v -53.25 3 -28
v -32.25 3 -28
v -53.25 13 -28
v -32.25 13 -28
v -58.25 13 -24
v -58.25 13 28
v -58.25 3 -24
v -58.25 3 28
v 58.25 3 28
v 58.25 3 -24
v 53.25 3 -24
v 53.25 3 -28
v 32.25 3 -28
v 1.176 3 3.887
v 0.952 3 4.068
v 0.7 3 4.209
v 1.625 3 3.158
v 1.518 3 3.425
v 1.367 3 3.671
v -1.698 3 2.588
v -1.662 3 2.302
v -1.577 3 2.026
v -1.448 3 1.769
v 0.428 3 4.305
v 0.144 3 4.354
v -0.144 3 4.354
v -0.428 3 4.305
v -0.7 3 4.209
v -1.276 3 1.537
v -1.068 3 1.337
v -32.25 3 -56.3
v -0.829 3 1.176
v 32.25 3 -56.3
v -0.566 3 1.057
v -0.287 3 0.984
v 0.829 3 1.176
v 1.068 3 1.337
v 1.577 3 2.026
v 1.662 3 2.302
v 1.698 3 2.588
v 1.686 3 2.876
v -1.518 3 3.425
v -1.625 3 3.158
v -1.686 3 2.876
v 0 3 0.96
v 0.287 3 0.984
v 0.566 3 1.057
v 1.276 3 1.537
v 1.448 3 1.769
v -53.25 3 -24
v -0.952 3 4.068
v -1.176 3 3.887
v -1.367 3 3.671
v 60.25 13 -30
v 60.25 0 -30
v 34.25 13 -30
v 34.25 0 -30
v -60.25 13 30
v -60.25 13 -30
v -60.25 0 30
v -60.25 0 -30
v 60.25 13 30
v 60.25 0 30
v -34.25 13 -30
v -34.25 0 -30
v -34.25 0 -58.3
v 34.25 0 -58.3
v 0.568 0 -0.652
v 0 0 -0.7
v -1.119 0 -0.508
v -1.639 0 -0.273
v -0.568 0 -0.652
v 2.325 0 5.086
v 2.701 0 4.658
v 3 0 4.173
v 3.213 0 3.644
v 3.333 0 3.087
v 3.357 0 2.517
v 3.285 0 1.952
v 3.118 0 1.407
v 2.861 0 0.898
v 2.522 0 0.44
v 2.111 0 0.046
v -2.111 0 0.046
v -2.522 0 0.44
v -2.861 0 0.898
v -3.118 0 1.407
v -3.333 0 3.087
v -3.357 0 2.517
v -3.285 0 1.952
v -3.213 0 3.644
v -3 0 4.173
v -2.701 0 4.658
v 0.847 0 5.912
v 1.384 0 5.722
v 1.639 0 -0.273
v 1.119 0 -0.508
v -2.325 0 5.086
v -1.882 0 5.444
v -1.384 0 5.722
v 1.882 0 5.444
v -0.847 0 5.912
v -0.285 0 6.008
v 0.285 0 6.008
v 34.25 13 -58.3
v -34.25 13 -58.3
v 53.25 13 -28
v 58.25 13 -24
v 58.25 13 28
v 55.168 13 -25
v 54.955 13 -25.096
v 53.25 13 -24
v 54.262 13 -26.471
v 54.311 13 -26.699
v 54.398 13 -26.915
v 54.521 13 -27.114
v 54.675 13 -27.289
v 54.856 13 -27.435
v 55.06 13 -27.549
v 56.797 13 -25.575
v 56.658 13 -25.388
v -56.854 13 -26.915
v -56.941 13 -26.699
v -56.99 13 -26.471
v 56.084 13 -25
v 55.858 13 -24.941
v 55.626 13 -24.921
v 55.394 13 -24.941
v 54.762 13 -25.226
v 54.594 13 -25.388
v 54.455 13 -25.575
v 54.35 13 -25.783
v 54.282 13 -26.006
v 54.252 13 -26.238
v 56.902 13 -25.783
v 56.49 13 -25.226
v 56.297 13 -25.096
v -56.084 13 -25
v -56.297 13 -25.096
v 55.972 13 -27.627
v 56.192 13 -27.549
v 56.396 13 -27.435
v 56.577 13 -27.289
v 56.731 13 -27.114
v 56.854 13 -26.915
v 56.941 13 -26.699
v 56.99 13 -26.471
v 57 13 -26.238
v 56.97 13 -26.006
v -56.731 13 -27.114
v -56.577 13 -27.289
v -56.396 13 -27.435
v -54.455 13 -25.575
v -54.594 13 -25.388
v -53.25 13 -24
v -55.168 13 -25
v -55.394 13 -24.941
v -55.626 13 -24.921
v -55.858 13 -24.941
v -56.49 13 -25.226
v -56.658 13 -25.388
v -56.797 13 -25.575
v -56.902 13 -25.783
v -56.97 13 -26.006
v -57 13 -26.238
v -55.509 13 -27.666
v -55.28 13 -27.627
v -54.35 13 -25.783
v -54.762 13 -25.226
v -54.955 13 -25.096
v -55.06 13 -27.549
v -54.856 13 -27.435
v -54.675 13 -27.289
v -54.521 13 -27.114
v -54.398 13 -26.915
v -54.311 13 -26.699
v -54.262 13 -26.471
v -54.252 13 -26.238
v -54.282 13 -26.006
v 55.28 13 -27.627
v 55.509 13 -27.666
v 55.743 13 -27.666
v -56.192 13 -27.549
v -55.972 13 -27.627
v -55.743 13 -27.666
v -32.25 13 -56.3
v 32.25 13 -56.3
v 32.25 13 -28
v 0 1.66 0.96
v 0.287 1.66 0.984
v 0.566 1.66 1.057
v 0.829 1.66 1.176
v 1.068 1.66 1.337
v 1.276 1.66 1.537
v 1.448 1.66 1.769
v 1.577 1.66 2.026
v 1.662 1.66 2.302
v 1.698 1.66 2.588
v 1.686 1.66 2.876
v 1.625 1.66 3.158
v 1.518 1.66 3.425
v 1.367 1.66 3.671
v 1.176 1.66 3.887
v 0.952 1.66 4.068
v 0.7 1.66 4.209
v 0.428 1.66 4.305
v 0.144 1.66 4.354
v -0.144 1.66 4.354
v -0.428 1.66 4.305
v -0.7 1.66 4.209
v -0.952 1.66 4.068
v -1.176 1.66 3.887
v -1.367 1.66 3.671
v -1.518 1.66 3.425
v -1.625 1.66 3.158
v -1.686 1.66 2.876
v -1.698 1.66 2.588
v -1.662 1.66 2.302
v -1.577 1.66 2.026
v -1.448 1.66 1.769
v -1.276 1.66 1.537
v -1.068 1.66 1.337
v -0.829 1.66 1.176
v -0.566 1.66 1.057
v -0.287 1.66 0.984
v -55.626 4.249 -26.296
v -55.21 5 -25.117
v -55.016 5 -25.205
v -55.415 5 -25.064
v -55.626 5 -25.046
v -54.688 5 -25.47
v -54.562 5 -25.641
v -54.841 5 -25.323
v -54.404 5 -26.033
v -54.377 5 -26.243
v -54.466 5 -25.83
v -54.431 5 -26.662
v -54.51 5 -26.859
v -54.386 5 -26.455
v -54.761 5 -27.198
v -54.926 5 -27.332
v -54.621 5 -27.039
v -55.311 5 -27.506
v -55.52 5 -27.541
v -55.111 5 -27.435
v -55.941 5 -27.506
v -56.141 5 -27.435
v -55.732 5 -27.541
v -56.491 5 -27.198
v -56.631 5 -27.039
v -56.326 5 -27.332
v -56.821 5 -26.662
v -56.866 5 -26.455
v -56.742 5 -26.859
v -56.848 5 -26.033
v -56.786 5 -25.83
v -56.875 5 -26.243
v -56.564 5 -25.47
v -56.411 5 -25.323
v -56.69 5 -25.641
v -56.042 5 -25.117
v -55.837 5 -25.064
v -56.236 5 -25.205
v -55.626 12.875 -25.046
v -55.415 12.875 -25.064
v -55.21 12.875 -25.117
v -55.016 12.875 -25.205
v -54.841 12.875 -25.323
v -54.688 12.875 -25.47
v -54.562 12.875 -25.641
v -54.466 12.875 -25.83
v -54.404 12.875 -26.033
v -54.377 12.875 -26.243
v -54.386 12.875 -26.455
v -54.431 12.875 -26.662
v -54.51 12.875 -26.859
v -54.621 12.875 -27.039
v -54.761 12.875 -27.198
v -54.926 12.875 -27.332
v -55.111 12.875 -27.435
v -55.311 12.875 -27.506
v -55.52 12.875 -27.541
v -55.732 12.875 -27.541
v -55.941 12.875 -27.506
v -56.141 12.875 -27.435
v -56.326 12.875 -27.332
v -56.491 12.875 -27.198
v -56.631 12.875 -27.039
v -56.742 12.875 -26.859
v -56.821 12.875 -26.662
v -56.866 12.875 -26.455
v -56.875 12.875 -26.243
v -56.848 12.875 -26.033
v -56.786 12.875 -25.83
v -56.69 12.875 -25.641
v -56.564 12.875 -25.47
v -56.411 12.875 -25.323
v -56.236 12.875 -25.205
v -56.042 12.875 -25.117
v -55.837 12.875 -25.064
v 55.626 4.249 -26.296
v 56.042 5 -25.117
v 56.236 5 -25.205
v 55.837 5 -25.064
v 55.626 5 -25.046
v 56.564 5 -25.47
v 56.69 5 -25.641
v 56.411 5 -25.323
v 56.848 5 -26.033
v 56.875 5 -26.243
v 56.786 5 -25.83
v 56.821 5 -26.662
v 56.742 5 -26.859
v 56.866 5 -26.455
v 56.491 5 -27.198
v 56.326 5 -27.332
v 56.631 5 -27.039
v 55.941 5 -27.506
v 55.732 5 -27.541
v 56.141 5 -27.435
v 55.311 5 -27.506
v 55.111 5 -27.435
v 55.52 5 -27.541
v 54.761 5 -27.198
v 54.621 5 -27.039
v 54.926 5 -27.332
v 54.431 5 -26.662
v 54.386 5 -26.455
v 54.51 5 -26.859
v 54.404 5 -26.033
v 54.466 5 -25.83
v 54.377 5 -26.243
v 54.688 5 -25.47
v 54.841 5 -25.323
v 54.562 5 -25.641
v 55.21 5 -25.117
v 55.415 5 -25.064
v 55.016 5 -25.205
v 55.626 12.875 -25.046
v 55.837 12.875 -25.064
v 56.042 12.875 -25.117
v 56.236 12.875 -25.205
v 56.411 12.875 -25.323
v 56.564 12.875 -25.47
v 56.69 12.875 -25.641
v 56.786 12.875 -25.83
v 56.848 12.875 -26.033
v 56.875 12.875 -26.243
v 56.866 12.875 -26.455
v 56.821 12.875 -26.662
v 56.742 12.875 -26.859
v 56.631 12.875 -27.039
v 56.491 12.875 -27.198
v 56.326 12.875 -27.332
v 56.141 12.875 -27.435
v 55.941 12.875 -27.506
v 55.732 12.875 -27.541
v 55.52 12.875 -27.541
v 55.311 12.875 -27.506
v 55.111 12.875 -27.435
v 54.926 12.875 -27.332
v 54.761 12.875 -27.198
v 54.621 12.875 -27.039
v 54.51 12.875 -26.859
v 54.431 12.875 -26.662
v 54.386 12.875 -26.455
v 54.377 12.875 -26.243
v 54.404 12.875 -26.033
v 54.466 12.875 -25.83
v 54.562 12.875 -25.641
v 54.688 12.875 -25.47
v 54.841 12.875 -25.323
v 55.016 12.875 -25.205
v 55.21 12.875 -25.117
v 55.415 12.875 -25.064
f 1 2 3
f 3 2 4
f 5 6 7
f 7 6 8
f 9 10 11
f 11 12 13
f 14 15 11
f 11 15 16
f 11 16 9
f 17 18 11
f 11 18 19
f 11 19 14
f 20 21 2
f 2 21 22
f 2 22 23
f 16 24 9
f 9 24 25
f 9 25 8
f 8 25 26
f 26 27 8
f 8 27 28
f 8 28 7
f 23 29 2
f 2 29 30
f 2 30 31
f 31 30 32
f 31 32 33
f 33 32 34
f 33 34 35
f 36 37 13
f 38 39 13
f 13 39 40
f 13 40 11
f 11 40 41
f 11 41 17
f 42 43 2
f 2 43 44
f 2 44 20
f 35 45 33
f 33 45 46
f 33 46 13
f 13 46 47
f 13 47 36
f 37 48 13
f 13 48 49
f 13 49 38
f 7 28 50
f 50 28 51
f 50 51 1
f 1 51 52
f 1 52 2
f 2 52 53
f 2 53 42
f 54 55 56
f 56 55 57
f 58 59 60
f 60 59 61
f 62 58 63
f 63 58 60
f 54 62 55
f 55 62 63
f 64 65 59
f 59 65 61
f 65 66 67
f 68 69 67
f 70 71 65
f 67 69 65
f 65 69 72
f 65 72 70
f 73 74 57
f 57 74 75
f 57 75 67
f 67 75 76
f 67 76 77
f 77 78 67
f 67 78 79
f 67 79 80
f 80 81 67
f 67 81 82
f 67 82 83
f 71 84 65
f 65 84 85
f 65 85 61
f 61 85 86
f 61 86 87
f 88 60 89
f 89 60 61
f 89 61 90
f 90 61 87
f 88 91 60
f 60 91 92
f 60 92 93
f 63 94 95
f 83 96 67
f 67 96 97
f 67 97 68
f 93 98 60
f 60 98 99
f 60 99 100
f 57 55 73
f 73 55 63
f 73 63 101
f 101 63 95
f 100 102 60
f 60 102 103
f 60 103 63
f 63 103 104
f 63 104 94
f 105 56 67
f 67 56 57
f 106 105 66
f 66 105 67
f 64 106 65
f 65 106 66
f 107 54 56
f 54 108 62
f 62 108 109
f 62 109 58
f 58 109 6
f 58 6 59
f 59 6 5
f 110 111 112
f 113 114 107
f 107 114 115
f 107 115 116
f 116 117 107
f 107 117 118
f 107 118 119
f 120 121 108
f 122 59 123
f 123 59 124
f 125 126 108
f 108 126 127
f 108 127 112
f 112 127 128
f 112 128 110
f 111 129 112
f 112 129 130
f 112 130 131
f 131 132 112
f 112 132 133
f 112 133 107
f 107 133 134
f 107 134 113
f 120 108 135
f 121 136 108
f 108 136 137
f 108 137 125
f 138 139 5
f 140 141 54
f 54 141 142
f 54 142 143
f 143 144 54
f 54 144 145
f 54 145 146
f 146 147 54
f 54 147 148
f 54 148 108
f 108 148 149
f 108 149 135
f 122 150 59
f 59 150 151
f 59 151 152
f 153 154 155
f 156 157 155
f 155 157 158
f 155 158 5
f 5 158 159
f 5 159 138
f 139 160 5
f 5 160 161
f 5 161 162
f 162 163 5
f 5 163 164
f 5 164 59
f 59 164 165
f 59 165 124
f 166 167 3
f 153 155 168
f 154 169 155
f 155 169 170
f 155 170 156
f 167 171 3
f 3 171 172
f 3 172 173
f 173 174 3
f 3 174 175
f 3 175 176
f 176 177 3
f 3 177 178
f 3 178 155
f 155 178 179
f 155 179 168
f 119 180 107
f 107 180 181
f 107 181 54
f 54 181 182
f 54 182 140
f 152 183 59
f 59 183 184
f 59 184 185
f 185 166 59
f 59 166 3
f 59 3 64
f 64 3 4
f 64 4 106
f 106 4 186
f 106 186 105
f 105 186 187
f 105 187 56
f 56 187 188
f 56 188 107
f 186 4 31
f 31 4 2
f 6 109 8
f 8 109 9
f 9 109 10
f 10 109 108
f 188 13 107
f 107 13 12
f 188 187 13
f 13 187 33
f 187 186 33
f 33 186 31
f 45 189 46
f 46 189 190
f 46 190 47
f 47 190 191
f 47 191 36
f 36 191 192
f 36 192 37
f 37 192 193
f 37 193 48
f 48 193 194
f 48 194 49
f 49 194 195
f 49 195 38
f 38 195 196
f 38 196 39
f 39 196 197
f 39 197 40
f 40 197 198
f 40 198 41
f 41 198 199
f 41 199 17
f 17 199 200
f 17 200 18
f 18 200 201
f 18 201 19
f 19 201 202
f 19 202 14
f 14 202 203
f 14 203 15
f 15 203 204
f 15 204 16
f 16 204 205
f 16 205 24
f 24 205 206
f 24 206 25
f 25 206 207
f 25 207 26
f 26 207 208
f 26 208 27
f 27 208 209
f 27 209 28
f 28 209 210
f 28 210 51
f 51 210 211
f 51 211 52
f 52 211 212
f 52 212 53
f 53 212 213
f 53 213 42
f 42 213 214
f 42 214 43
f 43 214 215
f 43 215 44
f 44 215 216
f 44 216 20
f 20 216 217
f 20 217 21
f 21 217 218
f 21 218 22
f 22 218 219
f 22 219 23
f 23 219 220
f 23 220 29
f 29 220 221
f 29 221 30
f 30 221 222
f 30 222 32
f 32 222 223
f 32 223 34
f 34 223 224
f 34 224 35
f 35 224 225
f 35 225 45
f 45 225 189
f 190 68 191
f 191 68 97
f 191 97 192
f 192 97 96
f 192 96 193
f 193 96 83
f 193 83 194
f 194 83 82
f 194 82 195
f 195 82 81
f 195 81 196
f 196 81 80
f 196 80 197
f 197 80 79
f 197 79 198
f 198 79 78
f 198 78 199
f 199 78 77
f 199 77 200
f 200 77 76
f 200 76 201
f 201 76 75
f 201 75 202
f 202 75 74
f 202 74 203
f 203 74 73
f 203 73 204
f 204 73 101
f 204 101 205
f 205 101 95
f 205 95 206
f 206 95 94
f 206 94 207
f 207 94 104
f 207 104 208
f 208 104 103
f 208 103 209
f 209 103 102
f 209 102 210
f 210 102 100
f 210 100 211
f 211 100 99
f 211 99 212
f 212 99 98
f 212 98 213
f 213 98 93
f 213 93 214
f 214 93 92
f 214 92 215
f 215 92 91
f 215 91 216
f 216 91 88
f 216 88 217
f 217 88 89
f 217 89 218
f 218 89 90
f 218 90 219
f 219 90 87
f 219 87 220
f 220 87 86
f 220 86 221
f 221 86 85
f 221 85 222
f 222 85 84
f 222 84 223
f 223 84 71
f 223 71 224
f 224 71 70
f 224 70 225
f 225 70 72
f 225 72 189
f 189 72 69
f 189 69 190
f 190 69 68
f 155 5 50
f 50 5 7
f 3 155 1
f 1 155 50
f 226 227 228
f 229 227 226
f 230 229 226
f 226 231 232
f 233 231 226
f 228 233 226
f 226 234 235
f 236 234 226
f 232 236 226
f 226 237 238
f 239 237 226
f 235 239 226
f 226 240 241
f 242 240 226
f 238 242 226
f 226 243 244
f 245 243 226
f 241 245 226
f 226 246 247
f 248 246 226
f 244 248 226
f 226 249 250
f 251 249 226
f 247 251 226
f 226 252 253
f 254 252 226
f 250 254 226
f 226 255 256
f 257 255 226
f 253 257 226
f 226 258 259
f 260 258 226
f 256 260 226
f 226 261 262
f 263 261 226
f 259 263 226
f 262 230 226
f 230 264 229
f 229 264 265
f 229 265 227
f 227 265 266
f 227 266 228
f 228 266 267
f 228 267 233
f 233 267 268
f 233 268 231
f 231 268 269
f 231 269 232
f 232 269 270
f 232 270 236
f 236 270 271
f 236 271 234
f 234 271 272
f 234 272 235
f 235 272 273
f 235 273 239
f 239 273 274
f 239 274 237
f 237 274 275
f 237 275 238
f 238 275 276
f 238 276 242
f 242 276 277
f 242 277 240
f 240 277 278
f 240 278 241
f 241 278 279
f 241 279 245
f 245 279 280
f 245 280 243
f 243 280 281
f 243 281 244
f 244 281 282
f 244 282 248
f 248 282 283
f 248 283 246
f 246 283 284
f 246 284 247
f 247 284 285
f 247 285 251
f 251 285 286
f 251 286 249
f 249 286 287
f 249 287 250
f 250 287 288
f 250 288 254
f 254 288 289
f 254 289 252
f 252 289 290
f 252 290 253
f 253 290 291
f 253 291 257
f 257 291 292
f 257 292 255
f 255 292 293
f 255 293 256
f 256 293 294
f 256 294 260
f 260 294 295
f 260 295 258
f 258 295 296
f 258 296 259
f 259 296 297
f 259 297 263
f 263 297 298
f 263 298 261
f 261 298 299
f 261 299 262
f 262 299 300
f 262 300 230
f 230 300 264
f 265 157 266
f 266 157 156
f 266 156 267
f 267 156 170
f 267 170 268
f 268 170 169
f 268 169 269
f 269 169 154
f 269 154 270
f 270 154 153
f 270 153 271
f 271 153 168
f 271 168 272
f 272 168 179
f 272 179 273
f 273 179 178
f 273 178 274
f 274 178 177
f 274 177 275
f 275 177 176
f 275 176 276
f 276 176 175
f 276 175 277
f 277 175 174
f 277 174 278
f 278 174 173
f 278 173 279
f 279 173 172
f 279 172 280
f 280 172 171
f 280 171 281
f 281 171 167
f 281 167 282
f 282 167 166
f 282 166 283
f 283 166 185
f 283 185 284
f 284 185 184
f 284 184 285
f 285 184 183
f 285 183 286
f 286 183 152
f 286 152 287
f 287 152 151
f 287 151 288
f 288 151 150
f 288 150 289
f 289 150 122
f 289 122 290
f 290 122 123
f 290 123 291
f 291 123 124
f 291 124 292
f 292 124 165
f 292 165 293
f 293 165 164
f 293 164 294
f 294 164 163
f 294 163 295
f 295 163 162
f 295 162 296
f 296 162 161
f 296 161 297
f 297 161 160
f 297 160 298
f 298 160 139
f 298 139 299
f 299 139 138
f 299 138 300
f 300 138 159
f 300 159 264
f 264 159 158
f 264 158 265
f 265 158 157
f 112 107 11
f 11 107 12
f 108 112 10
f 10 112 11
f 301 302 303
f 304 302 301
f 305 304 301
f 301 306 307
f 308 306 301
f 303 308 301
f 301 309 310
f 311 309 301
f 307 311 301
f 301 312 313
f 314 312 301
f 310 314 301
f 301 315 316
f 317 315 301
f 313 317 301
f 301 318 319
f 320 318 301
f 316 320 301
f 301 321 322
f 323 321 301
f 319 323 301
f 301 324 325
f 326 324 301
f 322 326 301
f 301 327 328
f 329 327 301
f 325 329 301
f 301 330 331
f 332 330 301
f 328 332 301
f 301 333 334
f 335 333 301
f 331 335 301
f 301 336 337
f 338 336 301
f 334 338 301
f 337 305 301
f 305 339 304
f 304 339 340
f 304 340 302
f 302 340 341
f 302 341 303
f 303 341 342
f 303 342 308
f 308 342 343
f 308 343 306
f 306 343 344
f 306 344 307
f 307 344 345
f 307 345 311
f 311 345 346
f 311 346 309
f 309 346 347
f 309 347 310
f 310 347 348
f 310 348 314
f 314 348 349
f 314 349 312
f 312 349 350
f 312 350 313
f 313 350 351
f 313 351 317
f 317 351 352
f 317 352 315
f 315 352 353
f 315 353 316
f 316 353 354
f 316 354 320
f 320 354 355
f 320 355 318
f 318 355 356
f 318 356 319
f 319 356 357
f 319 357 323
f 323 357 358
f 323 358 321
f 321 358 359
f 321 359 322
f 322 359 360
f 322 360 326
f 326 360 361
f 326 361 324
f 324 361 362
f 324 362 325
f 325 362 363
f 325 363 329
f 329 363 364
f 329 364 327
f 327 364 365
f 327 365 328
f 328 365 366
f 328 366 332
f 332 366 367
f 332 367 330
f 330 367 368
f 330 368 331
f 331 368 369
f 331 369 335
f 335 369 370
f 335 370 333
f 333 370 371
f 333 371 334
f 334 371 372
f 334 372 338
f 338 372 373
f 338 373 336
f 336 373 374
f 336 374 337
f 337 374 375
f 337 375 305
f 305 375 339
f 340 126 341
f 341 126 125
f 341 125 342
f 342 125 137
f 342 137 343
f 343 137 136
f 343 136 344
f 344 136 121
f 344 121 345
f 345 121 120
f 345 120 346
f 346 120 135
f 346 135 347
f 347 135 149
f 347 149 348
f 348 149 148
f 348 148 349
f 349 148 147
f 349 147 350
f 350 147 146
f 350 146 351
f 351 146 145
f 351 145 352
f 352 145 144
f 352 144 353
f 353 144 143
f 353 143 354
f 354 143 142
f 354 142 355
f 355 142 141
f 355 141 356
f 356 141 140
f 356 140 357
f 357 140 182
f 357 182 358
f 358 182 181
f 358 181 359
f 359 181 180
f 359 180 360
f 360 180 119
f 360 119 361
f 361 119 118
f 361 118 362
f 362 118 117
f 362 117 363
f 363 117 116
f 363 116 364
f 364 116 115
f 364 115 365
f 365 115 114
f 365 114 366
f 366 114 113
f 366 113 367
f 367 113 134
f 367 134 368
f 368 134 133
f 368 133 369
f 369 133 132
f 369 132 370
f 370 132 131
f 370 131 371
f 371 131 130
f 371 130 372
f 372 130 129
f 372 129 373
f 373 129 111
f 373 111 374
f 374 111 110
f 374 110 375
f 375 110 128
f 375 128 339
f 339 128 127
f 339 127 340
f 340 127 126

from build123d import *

# Parameters (mm, degrees)
SKETCH1_W                                            = 120.5
SKETCH1_H                                            = 60
BOSS_EXTRUDE1_DEPTH                                  = 3
SKETCH3_W                                            = 68.5
SKETCH3_H                                            = 28.3
BOSS_EXTRUDE3_DEPTH                                  = 3
BOSS_EXTRUDE2_DEPTH                                  = 10
CSK_FOR_M3_HEX_SOCKET_COUNTERSUNK_CAP_SC_D           = 3.4
CSK_FOR_M3_HEX_SOCKET_COUNTERSUNK_CAP_SC_CSINK_D     = 6.72
CSK_FOR_M3_HEX_SOCKET_COUNTERSUNK_CAP_SC_CSINK_ANGLE = 90
SKETCH6_W                                            = 5
SKETCH6_H                                            = 4
BOSS_EXTRUDE4_DEPTH                                  = 10


with BuildPart() as part:
    # Sketch1 → Boss-Extrude1 (new body)
    with BuildSketch(Plane(origin=(0, 0, 0), x_dir=(1, 0, 0), z_dir=(0, 1, 0))):
        Rectangle(SKETCH1_W, SKETCH1_H)
    extrude(amount=BOSS_EXTRUDE1_DEPTH)

    # Sketch3 → Boss-Extrude3 (add)
    with BuildSketch(Plane.XZ):
        with Locations((0, -44.15)):
            Rectangle(SKETCH3_W, SKETCH3_H)
    extrude(amount=-BOSS_EXTRUDE3_DEPTH)

    # Sketch2 → Boss-Extrude2 (add)
    with BuildSketch(Plane(origin=(0, 3, 0), x_dir=(1, 0, 0), z_dir=(0, 1, 0))):
        Polygon((60.25, 30), (34.25, 30), (34.25, 58.3), (-34.25, 58.3), (-34.25, 30), (-60.25, 30), (-60.25, -30), (60.25, -30), align=None)
        Polygon((-32.25, 28), (-58.25, 28), (-58.25, -28), (58.25, -28), (58.25, 28), (32.25, 28), (32.25, 56.3), (-32.25, 56.3), align=None, mode=Mode.SUBTRACT)
    extrude(amount=BOSS_EXTRUDE2_DEPTH)

    # CSK for M3 Hex Socket Countersunk Cap Screw1 (through all)
    with Locations(Plane(origin=(0, 0, 0), x_dir=(-1, 0, 0), z_dir=(0, -1, 0))):
        with Locations((0, -2.66)):
            CounterSinkHole(CSK_FOR_M3_HEX_SOCKET_COUNTERSUNK_CAP_SC_D / 2, CSK_FOR_M3_HEX_SOCKET_COUNTERSUNK_CAP_SC_CSINK_D / 2, counter_sink_angle=CSK_FOR_M3_HEX_SOCKET_COUNTERSUNK_CAP_SC_CSINK_ANGLE)

    # Sketch6 → Boss-Extrude4 (add)
    with BuildSketch(Plane(origin=(0, 3, 0), x_dir=(1, 0, 0), z_dir=(0, 1, 0))):
        with Locations((-55.75, 26)):
            Rectangle(SKETCH6_W, SKETCH6_H)
    boss_extrude4 = extrude(amount=BOSS_EXTRUDE4_DEPTH)

    # Sketch8 → Ø2.5 (2.5) Diameter Hole1 (revolve, cut)
    with BuildSketch(Plane(origin=(-55.626, 13, -26.296), x_dir=(0, 0, 1), z_dir=(1, 0, 0))):
        Polygon((0, 0), (0, 8.751075774), (1.25, 8), (1.25, 0.125), (1.375, 0), align=None)
    f_2_5_2_5_diameter_hole1 = revolve(axis=Axis((-55.626, 19.35, -26.296), (0, -1, 0)), mode=Mode.SUBTRACT)

    # Mirror1: Boss-Extrude4, Ø2.5 (2.5) Diameter Hole1 across plane
    add(boss_extrude4.mirror(Plane(origin=(0, 0, 0), x_dir=(0, 0, 1), z_dir=(1, 0, 0))))
    add(f_2_5_2_5_diameter_hole1.mirror(Plane(origin=(0, 0, 0), x_dir=(0, 0, 1), z_dir=(1, 0, 0))), mode=Mode.SUBTRACT)


solid = part.part
